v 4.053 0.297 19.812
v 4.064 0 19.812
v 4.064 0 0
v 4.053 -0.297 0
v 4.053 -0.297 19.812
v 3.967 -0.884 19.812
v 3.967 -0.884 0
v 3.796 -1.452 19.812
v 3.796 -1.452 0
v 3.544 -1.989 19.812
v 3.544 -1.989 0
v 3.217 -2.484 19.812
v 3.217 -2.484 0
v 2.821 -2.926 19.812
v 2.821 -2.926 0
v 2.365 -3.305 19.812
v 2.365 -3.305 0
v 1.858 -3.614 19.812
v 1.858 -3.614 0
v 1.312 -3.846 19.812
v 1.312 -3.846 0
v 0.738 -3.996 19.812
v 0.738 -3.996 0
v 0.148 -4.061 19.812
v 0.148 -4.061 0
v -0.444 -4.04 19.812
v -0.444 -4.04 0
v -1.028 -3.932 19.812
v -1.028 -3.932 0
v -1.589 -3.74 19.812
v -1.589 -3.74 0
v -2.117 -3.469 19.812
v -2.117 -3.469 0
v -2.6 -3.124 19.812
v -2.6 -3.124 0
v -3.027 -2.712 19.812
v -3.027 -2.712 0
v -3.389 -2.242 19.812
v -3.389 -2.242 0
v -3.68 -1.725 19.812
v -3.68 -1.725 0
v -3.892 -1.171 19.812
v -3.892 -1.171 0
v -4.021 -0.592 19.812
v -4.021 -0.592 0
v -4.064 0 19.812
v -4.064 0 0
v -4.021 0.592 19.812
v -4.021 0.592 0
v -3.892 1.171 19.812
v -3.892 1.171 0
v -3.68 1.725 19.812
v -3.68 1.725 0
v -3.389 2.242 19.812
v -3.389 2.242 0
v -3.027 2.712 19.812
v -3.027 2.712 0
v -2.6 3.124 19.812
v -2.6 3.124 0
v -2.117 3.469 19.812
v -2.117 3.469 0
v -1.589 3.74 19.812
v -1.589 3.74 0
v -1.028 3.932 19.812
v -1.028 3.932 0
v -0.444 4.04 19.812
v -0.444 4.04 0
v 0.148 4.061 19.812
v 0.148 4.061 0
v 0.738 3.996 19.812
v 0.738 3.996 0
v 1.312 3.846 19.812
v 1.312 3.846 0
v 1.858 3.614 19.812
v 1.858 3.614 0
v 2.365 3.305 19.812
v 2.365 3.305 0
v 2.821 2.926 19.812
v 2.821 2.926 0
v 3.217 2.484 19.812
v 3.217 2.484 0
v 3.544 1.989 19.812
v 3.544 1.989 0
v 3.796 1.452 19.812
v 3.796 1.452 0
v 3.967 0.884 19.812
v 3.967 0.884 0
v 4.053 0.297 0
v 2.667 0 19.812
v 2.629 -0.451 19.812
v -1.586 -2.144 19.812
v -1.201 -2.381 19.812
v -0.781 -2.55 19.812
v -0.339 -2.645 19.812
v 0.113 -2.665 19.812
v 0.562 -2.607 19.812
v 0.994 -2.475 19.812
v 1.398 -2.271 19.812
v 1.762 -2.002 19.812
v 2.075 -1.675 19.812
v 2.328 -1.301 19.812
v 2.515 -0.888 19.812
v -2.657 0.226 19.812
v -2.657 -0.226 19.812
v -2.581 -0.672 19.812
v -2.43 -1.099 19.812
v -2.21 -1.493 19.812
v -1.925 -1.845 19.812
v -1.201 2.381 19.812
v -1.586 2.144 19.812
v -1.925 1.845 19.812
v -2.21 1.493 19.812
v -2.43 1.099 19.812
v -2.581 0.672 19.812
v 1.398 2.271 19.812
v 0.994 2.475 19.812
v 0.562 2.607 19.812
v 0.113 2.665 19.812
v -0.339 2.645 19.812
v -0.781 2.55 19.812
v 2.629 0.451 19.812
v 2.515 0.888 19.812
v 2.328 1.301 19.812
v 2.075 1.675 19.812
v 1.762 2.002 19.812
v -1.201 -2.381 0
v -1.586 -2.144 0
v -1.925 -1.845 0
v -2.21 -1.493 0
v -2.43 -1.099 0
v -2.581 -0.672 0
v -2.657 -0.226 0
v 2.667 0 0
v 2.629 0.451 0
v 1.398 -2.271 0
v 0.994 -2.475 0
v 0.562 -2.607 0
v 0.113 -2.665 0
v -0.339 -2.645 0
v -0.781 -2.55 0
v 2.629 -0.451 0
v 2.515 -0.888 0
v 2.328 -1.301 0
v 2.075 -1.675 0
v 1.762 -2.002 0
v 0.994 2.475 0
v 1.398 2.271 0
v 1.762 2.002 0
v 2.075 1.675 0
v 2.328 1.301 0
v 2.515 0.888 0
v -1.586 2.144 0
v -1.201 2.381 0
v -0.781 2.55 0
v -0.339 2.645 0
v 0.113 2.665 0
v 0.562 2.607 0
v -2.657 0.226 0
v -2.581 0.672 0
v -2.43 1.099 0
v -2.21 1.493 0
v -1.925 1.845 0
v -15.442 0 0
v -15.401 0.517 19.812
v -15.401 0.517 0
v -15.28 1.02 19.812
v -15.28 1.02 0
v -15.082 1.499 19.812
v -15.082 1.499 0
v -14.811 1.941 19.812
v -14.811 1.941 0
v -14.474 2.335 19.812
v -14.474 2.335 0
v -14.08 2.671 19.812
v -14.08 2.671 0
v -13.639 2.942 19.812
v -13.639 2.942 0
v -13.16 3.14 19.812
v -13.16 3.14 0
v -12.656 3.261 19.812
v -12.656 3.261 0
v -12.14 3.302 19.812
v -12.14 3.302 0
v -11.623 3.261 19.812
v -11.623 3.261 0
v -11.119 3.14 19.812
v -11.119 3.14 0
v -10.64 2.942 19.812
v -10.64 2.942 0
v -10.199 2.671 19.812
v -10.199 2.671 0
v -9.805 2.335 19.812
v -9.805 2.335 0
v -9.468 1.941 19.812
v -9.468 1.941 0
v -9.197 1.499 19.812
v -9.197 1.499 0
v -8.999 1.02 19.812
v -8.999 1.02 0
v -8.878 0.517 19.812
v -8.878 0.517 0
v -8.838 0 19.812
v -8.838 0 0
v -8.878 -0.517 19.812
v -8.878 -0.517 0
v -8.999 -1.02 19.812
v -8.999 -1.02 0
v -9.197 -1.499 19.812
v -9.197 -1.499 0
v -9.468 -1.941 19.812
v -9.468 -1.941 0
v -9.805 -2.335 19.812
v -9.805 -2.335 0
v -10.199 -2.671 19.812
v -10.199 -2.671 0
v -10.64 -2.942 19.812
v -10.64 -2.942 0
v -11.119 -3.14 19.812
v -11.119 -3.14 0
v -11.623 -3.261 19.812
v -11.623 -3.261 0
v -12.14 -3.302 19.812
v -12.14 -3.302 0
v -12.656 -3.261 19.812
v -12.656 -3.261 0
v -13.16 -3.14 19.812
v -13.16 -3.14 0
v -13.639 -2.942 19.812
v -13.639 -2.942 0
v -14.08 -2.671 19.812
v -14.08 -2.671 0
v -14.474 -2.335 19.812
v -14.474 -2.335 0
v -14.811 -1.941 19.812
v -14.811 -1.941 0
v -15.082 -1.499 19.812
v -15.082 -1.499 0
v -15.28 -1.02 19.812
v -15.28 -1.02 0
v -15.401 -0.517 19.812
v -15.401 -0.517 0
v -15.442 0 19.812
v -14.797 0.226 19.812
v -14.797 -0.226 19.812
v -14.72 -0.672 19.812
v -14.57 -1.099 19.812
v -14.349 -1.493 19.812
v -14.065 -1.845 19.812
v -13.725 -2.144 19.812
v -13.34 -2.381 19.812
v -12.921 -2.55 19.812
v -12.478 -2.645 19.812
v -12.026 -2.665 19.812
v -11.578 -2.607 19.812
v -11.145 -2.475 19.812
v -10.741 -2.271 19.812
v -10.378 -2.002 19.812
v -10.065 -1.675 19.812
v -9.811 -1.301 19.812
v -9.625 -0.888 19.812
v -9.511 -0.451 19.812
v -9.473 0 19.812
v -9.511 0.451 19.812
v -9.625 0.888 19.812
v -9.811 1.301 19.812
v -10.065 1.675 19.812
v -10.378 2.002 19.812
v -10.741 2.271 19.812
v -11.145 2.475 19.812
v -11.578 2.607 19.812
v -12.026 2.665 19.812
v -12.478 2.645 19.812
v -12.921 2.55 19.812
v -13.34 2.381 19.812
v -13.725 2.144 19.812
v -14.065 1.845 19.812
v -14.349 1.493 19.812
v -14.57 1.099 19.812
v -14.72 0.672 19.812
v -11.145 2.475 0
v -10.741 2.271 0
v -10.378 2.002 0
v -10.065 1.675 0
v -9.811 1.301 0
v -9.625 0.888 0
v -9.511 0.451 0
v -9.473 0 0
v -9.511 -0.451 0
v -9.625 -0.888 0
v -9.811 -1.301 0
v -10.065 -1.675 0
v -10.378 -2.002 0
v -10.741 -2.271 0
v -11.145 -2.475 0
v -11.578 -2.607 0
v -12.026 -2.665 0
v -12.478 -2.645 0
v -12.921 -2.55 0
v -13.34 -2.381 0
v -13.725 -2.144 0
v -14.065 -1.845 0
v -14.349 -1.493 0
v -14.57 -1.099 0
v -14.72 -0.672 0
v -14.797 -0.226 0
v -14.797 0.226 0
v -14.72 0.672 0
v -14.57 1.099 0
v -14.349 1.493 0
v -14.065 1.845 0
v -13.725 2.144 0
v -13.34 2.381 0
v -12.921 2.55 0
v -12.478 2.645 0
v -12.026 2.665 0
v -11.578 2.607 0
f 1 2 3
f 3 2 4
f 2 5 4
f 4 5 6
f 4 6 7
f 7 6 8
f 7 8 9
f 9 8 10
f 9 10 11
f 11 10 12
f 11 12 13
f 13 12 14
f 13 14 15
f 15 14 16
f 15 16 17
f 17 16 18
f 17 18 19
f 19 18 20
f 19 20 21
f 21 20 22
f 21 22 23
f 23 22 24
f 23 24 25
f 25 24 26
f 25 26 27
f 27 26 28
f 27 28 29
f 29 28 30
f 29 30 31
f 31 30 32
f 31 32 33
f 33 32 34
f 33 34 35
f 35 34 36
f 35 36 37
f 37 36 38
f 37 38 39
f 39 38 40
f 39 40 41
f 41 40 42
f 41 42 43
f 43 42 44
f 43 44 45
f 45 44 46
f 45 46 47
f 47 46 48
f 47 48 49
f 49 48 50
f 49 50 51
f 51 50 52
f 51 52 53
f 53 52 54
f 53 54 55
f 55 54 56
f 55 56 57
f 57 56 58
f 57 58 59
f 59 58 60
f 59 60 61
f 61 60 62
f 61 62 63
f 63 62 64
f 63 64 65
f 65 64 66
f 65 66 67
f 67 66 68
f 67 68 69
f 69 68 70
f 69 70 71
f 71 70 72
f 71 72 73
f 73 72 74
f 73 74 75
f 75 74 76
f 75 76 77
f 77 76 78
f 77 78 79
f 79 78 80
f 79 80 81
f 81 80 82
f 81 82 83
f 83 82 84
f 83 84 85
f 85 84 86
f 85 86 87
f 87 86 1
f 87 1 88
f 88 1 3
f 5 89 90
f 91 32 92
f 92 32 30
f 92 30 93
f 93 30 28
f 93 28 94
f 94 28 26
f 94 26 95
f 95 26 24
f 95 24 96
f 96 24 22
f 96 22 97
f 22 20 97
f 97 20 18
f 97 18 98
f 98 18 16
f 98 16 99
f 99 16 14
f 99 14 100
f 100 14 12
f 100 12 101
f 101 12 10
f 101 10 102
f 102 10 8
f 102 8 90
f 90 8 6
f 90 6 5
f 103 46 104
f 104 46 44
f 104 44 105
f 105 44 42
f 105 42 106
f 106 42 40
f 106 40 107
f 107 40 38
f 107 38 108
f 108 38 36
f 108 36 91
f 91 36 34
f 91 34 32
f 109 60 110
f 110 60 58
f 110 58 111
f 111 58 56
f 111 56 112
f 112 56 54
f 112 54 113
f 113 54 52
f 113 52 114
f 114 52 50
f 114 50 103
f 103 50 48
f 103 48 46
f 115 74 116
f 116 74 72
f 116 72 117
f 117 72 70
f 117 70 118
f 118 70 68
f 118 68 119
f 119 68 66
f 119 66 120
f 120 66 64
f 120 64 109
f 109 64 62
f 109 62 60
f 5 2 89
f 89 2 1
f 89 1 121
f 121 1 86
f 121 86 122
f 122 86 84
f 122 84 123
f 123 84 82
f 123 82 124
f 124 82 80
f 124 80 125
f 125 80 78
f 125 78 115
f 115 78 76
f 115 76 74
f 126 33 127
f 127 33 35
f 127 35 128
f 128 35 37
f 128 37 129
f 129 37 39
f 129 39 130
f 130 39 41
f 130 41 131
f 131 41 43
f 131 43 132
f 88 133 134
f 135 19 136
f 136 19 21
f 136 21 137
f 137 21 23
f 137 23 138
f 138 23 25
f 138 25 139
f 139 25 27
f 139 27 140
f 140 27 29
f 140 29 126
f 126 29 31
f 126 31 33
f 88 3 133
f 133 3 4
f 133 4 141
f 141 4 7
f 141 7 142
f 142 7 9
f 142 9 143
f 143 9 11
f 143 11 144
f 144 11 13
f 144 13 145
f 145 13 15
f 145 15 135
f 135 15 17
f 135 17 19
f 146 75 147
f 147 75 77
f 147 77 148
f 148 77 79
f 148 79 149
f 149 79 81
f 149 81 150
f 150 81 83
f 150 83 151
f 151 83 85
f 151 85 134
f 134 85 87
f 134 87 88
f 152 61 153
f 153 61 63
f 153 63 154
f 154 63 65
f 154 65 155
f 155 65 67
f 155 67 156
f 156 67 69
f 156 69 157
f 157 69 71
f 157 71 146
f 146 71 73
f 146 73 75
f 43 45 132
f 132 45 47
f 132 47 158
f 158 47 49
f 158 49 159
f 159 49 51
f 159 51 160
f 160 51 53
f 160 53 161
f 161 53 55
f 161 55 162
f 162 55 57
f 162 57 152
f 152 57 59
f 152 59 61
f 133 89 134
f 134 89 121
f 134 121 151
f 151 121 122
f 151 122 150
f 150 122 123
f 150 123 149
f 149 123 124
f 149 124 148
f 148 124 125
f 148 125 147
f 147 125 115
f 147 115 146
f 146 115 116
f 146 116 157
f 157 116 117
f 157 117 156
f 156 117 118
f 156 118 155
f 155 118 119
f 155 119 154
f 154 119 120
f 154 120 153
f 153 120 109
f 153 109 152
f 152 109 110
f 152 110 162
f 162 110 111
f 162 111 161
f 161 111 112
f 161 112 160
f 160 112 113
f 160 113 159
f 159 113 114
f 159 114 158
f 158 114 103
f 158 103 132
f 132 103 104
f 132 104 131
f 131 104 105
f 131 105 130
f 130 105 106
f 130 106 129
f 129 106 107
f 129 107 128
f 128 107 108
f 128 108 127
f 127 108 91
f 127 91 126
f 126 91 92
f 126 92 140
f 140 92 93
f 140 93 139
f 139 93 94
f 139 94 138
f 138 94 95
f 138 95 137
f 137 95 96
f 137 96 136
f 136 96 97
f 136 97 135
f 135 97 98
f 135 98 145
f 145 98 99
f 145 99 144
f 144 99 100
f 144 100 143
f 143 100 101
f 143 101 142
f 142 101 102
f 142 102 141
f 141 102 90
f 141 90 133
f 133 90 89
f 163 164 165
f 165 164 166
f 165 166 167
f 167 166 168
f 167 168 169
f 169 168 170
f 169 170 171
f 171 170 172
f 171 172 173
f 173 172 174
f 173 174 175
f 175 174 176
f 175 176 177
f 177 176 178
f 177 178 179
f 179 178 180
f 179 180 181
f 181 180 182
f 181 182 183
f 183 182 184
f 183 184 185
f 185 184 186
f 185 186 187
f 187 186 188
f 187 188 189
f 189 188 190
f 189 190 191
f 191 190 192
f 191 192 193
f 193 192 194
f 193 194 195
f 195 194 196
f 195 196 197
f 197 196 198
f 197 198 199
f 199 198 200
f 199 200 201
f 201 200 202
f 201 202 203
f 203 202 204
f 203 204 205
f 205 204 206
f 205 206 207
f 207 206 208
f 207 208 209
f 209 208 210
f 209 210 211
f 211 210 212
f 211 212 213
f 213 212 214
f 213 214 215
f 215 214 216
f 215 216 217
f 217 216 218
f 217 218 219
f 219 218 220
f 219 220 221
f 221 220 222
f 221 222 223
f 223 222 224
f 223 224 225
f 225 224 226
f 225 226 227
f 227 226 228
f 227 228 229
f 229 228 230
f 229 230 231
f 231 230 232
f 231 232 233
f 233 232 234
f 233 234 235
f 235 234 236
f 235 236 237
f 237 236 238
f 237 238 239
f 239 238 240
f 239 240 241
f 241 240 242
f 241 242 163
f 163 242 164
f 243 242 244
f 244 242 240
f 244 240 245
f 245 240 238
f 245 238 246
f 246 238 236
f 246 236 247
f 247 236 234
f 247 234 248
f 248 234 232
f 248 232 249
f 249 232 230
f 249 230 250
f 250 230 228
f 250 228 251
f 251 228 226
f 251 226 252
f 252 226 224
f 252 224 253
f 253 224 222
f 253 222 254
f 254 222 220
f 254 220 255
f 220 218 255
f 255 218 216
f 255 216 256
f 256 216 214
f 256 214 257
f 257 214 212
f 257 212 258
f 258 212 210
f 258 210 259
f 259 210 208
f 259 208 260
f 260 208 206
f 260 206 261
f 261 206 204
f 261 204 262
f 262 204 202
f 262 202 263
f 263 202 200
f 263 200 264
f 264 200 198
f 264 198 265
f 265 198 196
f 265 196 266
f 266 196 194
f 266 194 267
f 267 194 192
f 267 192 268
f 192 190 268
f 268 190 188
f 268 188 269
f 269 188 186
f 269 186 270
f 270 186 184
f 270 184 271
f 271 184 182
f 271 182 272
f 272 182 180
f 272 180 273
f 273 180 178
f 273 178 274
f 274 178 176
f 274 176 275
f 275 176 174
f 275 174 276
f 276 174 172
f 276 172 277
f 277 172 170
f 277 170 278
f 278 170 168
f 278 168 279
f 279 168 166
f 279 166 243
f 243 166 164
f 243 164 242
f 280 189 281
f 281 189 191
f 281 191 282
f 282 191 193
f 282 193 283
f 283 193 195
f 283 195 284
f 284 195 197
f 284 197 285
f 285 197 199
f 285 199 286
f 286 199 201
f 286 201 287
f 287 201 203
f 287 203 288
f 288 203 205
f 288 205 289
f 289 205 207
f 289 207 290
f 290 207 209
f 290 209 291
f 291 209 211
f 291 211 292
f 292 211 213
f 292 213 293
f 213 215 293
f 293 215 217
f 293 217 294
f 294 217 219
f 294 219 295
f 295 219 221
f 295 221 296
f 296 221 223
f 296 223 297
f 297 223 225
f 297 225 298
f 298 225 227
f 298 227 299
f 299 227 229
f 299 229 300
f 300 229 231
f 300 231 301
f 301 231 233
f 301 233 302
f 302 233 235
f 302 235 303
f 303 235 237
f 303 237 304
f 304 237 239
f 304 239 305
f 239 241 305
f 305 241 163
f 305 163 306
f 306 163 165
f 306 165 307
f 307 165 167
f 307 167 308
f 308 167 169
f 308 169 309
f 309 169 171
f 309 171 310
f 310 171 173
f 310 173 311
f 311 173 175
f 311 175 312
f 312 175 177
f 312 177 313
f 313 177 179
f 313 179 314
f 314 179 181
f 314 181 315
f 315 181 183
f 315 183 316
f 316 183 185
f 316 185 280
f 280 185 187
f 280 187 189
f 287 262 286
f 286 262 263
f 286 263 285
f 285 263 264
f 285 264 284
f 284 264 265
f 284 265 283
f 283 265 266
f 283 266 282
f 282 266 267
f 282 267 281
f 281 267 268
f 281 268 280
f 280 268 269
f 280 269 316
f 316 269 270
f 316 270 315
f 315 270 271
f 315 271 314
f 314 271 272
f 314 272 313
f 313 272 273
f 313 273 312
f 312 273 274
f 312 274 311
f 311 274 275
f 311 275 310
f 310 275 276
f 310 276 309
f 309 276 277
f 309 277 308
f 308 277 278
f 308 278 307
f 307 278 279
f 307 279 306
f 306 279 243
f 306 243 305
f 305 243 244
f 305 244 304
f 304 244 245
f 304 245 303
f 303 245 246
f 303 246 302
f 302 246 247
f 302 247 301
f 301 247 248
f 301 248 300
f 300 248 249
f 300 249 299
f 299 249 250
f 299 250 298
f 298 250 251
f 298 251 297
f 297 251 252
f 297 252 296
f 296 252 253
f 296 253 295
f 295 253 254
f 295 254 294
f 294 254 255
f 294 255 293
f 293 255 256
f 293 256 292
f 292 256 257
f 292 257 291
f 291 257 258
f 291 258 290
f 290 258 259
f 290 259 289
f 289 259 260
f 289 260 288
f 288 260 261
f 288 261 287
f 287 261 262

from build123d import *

# Parameters (mm, degrees)
SKETCH1_R           = 4.064
BOSS_EXTRUDE1_DEPTH = 19.812
SKETCH2_R           = 3.302
BOSS_EXTRUDE2_DEPTH = 19.812
SKETCH3_R           = 2.667
CUT_EXTRUDE1_DEPTH  = 19.812
SKETCH5_R           = 2.667
CUT_EXTRUDE2_DEPTH  = 19.812


with BuildPart() as part:
    # Sketch1 → Boss-Extrude1 (new body)
    with BuildSketch(Plane.XY):
        Circle(SKETCH1_R)
    extrude(amount=BOSS_EXTRUDE1_DEPTH)

    # Sketch3 → Cut-Extrude1 (cut)
    with BuildSketch(Plane.XY.offset(19.812)):
        Circle(SKETCH3_R)
    extrude(amount=-CUT_EXTRUDE1_DEPTH, mode=Mode.SUBTRACT)


with BuildPart() as body_2:
    # Sketch2 → Boss-Extrude2 (new body)
    with BuildSketch(Plane(origin=(0, 0, 0), x_dir=(-1, 0, 0), z_dir=(0, 0, -1))):
        with Locations((12.139551254, 0)):
            Circle(SKETCH2_R)
    extrude(amount=-BOSS_EXTRUDE2_DEPTH)

    # Sketch5 → Cut-Extrude2 (cut)
    with BuildSketch(Plane.XY.offset(19.812)):
        with Locations((-12.139551254, 0)):
            Circle(SKETCH5_R)
    extrude(amount=-CUT_EXTRUDE2_DEPTH, mode=Mode.SUBTRACT)


solid = Compound([part.part, body_2.part])
